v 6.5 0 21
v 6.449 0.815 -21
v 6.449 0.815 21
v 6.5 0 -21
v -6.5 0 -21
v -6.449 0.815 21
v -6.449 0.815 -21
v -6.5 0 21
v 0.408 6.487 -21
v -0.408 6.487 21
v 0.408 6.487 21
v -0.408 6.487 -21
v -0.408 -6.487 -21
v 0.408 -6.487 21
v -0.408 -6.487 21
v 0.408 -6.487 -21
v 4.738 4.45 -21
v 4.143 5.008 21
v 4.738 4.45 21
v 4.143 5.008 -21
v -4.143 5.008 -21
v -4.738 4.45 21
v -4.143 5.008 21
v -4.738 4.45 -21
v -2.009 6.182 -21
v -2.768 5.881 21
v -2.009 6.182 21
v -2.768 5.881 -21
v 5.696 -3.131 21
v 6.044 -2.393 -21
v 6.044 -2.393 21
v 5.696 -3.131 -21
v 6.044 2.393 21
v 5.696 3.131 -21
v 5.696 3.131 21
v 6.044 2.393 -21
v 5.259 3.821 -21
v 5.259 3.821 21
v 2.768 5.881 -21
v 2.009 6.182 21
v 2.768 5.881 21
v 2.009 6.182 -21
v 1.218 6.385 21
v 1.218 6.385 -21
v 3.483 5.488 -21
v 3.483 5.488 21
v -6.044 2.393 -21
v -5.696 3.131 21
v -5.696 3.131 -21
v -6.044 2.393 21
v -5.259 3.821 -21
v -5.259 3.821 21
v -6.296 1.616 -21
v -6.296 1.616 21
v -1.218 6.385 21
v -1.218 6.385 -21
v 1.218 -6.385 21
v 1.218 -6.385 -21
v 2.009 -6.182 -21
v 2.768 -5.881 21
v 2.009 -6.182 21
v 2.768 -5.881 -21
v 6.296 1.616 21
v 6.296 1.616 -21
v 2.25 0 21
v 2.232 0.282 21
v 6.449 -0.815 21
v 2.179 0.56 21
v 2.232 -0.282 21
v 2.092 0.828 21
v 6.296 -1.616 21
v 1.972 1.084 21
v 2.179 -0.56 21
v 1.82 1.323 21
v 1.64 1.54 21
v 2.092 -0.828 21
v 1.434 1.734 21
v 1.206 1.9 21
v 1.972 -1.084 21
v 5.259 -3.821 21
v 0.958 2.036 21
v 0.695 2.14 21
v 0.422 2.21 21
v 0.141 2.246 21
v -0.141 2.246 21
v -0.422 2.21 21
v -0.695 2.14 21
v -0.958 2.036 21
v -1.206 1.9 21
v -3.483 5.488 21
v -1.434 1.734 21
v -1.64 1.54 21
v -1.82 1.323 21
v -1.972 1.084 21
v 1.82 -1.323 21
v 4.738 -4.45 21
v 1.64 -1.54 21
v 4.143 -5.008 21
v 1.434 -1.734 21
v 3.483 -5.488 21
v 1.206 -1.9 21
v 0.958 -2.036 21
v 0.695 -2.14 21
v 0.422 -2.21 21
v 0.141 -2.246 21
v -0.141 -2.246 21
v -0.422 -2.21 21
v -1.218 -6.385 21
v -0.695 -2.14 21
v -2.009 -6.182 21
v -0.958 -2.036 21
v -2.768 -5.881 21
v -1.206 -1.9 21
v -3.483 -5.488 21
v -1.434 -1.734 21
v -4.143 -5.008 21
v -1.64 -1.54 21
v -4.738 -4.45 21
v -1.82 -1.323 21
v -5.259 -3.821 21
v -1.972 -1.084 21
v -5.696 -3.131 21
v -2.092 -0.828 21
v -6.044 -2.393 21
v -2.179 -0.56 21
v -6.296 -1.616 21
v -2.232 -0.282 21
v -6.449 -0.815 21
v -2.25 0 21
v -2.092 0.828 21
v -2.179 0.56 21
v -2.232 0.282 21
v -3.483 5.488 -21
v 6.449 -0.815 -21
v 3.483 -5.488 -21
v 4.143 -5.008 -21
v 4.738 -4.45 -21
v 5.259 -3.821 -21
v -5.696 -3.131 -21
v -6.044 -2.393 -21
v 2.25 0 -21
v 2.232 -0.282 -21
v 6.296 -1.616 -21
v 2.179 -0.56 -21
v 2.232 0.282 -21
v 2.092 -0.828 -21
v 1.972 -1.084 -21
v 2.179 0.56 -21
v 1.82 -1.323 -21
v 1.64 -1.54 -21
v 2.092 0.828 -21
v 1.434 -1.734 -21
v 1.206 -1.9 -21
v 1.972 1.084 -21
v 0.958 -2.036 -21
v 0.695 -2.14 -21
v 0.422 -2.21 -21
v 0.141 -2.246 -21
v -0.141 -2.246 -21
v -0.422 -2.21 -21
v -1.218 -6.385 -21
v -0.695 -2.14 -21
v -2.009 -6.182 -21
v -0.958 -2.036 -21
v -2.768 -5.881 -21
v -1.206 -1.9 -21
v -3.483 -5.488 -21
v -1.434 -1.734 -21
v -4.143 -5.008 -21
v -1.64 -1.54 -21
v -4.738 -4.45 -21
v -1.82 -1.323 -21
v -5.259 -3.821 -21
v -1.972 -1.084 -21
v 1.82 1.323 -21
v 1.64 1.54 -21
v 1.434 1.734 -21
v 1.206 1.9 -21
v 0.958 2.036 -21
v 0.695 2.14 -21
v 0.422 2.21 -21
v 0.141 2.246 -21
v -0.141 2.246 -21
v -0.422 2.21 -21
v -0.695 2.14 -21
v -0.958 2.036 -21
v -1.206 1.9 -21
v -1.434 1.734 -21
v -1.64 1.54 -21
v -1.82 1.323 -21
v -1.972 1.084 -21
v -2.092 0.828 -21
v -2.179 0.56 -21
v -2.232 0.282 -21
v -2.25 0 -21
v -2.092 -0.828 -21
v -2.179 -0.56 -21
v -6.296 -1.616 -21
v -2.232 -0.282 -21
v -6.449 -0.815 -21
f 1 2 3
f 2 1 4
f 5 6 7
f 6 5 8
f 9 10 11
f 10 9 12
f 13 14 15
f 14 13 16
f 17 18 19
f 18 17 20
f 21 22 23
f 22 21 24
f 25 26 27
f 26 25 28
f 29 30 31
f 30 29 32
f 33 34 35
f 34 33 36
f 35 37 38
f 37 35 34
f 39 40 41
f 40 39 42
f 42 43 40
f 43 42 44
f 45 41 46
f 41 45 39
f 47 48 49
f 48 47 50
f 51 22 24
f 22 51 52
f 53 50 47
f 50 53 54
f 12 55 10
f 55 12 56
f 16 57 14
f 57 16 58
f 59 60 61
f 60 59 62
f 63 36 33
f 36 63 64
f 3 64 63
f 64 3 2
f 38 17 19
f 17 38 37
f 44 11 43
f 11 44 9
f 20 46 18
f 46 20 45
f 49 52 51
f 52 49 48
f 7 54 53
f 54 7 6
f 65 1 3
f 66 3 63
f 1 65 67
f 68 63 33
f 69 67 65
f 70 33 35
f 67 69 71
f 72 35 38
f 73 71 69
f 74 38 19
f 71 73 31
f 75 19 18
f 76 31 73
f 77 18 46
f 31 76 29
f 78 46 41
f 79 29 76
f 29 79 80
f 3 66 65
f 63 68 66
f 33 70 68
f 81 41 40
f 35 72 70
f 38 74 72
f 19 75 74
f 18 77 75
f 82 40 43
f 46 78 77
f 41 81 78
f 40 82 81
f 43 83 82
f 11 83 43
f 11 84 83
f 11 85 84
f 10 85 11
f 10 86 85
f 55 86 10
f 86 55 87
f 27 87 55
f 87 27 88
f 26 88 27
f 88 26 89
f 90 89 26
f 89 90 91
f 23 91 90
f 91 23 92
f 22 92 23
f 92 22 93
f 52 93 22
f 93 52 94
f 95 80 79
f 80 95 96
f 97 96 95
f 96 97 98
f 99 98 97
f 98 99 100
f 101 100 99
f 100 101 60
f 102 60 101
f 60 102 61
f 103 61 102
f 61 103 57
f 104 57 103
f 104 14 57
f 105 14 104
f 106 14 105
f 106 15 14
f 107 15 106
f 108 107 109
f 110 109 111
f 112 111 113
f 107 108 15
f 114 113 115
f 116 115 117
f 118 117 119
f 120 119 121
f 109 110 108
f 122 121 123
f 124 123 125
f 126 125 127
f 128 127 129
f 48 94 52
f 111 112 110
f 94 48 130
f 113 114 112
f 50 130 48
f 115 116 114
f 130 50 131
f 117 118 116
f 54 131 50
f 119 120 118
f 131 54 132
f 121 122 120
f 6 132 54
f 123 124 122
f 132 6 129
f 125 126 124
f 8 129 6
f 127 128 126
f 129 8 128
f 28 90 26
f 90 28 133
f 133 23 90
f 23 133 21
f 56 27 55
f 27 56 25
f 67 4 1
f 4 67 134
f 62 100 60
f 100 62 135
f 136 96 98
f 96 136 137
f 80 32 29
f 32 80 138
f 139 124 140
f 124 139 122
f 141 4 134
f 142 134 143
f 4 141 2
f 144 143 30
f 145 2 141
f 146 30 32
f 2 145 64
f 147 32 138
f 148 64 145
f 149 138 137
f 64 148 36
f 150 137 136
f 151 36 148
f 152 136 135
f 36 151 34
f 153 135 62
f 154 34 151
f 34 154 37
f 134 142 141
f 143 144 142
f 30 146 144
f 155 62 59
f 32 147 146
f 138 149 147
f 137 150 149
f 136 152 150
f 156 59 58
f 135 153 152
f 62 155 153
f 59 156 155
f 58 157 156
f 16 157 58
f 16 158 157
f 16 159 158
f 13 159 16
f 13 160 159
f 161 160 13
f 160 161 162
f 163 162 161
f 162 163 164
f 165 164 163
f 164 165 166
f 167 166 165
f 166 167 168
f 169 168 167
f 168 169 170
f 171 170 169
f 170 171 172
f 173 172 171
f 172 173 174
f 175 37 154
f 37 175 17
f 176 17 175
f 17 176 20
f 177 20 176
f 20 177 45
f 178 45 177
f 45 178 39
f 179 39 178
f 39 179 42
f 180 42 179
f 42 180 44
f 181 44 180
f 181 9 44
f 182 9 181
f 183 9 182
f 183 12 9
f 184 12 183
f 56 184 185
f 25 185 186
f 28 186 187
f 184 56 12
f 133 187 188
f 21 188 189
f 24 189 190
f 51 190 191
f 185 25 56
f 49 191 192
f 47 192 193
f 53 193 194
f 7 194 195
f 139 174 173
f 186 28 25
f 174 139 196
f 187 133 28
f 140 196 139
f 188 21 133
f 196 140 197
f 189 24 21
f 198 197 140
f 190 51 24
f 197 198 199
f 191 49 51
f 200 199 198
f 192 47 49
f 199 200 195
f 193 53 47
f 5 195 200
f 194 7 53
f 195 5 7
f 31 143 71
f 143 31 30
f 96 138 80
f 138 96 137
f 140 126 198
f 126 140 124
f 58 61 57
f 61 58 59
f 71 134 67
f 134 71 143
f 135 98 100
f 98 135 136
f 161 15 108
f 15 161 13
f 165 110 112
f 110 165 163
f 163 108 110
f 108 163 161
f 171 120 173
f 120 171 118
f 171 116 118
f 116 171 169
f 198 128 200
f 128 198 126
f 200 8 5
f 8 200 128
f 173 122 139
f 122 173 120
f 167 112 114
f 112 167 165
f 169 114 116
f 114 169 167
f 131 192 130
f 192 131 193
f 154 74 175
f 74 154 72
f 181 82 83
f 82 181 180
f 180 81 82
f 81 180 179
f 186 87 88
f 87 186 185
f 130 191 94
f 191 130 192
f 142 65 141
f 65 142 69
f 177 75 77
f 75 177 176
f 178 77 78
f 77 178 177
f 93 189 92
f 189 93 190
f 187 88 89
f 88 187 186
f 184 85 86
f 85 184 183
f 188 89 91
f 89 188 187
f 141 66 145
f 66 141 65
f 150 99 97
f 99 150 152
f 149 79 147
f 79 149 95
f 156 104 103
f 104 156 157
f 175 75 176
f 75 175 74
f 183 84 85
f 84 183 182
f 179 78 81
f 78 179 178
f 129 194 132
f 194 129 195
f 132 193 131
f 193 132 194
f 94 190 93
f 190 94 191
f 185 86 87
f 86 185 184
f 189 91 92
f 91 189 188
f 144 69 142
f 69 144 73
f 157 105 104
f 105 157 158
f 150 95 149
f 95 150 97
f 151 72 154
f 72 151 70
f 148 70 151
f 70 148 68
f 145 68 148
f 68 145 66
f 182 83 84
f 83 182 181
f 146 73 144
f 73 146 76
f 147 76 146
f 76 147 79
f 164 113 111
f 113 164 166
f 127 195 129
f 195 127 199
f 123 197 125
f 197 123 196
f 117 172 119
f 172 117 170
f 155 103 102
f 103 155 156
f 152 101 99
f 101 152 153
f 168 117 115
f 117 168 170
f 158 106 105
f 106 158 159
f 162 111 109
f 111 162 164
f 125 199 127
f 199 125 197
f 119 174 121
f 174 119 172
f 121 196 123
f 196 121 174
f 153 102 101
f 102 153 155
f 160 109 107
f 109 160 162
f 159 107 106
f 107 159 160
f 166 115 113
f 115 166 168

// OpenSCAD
$fn = 50;


difference() {
	union() {
		translate(v = [0, 0, -21.0000000000]) {
			cylinder(h = 42, r = 6.5000000000);
		}
	}
	union() {
		translate(v = [0, 0, -100.0000000000]) {
			cylinder(h = 200, r = 2.2500000000);
		}
	}
}
